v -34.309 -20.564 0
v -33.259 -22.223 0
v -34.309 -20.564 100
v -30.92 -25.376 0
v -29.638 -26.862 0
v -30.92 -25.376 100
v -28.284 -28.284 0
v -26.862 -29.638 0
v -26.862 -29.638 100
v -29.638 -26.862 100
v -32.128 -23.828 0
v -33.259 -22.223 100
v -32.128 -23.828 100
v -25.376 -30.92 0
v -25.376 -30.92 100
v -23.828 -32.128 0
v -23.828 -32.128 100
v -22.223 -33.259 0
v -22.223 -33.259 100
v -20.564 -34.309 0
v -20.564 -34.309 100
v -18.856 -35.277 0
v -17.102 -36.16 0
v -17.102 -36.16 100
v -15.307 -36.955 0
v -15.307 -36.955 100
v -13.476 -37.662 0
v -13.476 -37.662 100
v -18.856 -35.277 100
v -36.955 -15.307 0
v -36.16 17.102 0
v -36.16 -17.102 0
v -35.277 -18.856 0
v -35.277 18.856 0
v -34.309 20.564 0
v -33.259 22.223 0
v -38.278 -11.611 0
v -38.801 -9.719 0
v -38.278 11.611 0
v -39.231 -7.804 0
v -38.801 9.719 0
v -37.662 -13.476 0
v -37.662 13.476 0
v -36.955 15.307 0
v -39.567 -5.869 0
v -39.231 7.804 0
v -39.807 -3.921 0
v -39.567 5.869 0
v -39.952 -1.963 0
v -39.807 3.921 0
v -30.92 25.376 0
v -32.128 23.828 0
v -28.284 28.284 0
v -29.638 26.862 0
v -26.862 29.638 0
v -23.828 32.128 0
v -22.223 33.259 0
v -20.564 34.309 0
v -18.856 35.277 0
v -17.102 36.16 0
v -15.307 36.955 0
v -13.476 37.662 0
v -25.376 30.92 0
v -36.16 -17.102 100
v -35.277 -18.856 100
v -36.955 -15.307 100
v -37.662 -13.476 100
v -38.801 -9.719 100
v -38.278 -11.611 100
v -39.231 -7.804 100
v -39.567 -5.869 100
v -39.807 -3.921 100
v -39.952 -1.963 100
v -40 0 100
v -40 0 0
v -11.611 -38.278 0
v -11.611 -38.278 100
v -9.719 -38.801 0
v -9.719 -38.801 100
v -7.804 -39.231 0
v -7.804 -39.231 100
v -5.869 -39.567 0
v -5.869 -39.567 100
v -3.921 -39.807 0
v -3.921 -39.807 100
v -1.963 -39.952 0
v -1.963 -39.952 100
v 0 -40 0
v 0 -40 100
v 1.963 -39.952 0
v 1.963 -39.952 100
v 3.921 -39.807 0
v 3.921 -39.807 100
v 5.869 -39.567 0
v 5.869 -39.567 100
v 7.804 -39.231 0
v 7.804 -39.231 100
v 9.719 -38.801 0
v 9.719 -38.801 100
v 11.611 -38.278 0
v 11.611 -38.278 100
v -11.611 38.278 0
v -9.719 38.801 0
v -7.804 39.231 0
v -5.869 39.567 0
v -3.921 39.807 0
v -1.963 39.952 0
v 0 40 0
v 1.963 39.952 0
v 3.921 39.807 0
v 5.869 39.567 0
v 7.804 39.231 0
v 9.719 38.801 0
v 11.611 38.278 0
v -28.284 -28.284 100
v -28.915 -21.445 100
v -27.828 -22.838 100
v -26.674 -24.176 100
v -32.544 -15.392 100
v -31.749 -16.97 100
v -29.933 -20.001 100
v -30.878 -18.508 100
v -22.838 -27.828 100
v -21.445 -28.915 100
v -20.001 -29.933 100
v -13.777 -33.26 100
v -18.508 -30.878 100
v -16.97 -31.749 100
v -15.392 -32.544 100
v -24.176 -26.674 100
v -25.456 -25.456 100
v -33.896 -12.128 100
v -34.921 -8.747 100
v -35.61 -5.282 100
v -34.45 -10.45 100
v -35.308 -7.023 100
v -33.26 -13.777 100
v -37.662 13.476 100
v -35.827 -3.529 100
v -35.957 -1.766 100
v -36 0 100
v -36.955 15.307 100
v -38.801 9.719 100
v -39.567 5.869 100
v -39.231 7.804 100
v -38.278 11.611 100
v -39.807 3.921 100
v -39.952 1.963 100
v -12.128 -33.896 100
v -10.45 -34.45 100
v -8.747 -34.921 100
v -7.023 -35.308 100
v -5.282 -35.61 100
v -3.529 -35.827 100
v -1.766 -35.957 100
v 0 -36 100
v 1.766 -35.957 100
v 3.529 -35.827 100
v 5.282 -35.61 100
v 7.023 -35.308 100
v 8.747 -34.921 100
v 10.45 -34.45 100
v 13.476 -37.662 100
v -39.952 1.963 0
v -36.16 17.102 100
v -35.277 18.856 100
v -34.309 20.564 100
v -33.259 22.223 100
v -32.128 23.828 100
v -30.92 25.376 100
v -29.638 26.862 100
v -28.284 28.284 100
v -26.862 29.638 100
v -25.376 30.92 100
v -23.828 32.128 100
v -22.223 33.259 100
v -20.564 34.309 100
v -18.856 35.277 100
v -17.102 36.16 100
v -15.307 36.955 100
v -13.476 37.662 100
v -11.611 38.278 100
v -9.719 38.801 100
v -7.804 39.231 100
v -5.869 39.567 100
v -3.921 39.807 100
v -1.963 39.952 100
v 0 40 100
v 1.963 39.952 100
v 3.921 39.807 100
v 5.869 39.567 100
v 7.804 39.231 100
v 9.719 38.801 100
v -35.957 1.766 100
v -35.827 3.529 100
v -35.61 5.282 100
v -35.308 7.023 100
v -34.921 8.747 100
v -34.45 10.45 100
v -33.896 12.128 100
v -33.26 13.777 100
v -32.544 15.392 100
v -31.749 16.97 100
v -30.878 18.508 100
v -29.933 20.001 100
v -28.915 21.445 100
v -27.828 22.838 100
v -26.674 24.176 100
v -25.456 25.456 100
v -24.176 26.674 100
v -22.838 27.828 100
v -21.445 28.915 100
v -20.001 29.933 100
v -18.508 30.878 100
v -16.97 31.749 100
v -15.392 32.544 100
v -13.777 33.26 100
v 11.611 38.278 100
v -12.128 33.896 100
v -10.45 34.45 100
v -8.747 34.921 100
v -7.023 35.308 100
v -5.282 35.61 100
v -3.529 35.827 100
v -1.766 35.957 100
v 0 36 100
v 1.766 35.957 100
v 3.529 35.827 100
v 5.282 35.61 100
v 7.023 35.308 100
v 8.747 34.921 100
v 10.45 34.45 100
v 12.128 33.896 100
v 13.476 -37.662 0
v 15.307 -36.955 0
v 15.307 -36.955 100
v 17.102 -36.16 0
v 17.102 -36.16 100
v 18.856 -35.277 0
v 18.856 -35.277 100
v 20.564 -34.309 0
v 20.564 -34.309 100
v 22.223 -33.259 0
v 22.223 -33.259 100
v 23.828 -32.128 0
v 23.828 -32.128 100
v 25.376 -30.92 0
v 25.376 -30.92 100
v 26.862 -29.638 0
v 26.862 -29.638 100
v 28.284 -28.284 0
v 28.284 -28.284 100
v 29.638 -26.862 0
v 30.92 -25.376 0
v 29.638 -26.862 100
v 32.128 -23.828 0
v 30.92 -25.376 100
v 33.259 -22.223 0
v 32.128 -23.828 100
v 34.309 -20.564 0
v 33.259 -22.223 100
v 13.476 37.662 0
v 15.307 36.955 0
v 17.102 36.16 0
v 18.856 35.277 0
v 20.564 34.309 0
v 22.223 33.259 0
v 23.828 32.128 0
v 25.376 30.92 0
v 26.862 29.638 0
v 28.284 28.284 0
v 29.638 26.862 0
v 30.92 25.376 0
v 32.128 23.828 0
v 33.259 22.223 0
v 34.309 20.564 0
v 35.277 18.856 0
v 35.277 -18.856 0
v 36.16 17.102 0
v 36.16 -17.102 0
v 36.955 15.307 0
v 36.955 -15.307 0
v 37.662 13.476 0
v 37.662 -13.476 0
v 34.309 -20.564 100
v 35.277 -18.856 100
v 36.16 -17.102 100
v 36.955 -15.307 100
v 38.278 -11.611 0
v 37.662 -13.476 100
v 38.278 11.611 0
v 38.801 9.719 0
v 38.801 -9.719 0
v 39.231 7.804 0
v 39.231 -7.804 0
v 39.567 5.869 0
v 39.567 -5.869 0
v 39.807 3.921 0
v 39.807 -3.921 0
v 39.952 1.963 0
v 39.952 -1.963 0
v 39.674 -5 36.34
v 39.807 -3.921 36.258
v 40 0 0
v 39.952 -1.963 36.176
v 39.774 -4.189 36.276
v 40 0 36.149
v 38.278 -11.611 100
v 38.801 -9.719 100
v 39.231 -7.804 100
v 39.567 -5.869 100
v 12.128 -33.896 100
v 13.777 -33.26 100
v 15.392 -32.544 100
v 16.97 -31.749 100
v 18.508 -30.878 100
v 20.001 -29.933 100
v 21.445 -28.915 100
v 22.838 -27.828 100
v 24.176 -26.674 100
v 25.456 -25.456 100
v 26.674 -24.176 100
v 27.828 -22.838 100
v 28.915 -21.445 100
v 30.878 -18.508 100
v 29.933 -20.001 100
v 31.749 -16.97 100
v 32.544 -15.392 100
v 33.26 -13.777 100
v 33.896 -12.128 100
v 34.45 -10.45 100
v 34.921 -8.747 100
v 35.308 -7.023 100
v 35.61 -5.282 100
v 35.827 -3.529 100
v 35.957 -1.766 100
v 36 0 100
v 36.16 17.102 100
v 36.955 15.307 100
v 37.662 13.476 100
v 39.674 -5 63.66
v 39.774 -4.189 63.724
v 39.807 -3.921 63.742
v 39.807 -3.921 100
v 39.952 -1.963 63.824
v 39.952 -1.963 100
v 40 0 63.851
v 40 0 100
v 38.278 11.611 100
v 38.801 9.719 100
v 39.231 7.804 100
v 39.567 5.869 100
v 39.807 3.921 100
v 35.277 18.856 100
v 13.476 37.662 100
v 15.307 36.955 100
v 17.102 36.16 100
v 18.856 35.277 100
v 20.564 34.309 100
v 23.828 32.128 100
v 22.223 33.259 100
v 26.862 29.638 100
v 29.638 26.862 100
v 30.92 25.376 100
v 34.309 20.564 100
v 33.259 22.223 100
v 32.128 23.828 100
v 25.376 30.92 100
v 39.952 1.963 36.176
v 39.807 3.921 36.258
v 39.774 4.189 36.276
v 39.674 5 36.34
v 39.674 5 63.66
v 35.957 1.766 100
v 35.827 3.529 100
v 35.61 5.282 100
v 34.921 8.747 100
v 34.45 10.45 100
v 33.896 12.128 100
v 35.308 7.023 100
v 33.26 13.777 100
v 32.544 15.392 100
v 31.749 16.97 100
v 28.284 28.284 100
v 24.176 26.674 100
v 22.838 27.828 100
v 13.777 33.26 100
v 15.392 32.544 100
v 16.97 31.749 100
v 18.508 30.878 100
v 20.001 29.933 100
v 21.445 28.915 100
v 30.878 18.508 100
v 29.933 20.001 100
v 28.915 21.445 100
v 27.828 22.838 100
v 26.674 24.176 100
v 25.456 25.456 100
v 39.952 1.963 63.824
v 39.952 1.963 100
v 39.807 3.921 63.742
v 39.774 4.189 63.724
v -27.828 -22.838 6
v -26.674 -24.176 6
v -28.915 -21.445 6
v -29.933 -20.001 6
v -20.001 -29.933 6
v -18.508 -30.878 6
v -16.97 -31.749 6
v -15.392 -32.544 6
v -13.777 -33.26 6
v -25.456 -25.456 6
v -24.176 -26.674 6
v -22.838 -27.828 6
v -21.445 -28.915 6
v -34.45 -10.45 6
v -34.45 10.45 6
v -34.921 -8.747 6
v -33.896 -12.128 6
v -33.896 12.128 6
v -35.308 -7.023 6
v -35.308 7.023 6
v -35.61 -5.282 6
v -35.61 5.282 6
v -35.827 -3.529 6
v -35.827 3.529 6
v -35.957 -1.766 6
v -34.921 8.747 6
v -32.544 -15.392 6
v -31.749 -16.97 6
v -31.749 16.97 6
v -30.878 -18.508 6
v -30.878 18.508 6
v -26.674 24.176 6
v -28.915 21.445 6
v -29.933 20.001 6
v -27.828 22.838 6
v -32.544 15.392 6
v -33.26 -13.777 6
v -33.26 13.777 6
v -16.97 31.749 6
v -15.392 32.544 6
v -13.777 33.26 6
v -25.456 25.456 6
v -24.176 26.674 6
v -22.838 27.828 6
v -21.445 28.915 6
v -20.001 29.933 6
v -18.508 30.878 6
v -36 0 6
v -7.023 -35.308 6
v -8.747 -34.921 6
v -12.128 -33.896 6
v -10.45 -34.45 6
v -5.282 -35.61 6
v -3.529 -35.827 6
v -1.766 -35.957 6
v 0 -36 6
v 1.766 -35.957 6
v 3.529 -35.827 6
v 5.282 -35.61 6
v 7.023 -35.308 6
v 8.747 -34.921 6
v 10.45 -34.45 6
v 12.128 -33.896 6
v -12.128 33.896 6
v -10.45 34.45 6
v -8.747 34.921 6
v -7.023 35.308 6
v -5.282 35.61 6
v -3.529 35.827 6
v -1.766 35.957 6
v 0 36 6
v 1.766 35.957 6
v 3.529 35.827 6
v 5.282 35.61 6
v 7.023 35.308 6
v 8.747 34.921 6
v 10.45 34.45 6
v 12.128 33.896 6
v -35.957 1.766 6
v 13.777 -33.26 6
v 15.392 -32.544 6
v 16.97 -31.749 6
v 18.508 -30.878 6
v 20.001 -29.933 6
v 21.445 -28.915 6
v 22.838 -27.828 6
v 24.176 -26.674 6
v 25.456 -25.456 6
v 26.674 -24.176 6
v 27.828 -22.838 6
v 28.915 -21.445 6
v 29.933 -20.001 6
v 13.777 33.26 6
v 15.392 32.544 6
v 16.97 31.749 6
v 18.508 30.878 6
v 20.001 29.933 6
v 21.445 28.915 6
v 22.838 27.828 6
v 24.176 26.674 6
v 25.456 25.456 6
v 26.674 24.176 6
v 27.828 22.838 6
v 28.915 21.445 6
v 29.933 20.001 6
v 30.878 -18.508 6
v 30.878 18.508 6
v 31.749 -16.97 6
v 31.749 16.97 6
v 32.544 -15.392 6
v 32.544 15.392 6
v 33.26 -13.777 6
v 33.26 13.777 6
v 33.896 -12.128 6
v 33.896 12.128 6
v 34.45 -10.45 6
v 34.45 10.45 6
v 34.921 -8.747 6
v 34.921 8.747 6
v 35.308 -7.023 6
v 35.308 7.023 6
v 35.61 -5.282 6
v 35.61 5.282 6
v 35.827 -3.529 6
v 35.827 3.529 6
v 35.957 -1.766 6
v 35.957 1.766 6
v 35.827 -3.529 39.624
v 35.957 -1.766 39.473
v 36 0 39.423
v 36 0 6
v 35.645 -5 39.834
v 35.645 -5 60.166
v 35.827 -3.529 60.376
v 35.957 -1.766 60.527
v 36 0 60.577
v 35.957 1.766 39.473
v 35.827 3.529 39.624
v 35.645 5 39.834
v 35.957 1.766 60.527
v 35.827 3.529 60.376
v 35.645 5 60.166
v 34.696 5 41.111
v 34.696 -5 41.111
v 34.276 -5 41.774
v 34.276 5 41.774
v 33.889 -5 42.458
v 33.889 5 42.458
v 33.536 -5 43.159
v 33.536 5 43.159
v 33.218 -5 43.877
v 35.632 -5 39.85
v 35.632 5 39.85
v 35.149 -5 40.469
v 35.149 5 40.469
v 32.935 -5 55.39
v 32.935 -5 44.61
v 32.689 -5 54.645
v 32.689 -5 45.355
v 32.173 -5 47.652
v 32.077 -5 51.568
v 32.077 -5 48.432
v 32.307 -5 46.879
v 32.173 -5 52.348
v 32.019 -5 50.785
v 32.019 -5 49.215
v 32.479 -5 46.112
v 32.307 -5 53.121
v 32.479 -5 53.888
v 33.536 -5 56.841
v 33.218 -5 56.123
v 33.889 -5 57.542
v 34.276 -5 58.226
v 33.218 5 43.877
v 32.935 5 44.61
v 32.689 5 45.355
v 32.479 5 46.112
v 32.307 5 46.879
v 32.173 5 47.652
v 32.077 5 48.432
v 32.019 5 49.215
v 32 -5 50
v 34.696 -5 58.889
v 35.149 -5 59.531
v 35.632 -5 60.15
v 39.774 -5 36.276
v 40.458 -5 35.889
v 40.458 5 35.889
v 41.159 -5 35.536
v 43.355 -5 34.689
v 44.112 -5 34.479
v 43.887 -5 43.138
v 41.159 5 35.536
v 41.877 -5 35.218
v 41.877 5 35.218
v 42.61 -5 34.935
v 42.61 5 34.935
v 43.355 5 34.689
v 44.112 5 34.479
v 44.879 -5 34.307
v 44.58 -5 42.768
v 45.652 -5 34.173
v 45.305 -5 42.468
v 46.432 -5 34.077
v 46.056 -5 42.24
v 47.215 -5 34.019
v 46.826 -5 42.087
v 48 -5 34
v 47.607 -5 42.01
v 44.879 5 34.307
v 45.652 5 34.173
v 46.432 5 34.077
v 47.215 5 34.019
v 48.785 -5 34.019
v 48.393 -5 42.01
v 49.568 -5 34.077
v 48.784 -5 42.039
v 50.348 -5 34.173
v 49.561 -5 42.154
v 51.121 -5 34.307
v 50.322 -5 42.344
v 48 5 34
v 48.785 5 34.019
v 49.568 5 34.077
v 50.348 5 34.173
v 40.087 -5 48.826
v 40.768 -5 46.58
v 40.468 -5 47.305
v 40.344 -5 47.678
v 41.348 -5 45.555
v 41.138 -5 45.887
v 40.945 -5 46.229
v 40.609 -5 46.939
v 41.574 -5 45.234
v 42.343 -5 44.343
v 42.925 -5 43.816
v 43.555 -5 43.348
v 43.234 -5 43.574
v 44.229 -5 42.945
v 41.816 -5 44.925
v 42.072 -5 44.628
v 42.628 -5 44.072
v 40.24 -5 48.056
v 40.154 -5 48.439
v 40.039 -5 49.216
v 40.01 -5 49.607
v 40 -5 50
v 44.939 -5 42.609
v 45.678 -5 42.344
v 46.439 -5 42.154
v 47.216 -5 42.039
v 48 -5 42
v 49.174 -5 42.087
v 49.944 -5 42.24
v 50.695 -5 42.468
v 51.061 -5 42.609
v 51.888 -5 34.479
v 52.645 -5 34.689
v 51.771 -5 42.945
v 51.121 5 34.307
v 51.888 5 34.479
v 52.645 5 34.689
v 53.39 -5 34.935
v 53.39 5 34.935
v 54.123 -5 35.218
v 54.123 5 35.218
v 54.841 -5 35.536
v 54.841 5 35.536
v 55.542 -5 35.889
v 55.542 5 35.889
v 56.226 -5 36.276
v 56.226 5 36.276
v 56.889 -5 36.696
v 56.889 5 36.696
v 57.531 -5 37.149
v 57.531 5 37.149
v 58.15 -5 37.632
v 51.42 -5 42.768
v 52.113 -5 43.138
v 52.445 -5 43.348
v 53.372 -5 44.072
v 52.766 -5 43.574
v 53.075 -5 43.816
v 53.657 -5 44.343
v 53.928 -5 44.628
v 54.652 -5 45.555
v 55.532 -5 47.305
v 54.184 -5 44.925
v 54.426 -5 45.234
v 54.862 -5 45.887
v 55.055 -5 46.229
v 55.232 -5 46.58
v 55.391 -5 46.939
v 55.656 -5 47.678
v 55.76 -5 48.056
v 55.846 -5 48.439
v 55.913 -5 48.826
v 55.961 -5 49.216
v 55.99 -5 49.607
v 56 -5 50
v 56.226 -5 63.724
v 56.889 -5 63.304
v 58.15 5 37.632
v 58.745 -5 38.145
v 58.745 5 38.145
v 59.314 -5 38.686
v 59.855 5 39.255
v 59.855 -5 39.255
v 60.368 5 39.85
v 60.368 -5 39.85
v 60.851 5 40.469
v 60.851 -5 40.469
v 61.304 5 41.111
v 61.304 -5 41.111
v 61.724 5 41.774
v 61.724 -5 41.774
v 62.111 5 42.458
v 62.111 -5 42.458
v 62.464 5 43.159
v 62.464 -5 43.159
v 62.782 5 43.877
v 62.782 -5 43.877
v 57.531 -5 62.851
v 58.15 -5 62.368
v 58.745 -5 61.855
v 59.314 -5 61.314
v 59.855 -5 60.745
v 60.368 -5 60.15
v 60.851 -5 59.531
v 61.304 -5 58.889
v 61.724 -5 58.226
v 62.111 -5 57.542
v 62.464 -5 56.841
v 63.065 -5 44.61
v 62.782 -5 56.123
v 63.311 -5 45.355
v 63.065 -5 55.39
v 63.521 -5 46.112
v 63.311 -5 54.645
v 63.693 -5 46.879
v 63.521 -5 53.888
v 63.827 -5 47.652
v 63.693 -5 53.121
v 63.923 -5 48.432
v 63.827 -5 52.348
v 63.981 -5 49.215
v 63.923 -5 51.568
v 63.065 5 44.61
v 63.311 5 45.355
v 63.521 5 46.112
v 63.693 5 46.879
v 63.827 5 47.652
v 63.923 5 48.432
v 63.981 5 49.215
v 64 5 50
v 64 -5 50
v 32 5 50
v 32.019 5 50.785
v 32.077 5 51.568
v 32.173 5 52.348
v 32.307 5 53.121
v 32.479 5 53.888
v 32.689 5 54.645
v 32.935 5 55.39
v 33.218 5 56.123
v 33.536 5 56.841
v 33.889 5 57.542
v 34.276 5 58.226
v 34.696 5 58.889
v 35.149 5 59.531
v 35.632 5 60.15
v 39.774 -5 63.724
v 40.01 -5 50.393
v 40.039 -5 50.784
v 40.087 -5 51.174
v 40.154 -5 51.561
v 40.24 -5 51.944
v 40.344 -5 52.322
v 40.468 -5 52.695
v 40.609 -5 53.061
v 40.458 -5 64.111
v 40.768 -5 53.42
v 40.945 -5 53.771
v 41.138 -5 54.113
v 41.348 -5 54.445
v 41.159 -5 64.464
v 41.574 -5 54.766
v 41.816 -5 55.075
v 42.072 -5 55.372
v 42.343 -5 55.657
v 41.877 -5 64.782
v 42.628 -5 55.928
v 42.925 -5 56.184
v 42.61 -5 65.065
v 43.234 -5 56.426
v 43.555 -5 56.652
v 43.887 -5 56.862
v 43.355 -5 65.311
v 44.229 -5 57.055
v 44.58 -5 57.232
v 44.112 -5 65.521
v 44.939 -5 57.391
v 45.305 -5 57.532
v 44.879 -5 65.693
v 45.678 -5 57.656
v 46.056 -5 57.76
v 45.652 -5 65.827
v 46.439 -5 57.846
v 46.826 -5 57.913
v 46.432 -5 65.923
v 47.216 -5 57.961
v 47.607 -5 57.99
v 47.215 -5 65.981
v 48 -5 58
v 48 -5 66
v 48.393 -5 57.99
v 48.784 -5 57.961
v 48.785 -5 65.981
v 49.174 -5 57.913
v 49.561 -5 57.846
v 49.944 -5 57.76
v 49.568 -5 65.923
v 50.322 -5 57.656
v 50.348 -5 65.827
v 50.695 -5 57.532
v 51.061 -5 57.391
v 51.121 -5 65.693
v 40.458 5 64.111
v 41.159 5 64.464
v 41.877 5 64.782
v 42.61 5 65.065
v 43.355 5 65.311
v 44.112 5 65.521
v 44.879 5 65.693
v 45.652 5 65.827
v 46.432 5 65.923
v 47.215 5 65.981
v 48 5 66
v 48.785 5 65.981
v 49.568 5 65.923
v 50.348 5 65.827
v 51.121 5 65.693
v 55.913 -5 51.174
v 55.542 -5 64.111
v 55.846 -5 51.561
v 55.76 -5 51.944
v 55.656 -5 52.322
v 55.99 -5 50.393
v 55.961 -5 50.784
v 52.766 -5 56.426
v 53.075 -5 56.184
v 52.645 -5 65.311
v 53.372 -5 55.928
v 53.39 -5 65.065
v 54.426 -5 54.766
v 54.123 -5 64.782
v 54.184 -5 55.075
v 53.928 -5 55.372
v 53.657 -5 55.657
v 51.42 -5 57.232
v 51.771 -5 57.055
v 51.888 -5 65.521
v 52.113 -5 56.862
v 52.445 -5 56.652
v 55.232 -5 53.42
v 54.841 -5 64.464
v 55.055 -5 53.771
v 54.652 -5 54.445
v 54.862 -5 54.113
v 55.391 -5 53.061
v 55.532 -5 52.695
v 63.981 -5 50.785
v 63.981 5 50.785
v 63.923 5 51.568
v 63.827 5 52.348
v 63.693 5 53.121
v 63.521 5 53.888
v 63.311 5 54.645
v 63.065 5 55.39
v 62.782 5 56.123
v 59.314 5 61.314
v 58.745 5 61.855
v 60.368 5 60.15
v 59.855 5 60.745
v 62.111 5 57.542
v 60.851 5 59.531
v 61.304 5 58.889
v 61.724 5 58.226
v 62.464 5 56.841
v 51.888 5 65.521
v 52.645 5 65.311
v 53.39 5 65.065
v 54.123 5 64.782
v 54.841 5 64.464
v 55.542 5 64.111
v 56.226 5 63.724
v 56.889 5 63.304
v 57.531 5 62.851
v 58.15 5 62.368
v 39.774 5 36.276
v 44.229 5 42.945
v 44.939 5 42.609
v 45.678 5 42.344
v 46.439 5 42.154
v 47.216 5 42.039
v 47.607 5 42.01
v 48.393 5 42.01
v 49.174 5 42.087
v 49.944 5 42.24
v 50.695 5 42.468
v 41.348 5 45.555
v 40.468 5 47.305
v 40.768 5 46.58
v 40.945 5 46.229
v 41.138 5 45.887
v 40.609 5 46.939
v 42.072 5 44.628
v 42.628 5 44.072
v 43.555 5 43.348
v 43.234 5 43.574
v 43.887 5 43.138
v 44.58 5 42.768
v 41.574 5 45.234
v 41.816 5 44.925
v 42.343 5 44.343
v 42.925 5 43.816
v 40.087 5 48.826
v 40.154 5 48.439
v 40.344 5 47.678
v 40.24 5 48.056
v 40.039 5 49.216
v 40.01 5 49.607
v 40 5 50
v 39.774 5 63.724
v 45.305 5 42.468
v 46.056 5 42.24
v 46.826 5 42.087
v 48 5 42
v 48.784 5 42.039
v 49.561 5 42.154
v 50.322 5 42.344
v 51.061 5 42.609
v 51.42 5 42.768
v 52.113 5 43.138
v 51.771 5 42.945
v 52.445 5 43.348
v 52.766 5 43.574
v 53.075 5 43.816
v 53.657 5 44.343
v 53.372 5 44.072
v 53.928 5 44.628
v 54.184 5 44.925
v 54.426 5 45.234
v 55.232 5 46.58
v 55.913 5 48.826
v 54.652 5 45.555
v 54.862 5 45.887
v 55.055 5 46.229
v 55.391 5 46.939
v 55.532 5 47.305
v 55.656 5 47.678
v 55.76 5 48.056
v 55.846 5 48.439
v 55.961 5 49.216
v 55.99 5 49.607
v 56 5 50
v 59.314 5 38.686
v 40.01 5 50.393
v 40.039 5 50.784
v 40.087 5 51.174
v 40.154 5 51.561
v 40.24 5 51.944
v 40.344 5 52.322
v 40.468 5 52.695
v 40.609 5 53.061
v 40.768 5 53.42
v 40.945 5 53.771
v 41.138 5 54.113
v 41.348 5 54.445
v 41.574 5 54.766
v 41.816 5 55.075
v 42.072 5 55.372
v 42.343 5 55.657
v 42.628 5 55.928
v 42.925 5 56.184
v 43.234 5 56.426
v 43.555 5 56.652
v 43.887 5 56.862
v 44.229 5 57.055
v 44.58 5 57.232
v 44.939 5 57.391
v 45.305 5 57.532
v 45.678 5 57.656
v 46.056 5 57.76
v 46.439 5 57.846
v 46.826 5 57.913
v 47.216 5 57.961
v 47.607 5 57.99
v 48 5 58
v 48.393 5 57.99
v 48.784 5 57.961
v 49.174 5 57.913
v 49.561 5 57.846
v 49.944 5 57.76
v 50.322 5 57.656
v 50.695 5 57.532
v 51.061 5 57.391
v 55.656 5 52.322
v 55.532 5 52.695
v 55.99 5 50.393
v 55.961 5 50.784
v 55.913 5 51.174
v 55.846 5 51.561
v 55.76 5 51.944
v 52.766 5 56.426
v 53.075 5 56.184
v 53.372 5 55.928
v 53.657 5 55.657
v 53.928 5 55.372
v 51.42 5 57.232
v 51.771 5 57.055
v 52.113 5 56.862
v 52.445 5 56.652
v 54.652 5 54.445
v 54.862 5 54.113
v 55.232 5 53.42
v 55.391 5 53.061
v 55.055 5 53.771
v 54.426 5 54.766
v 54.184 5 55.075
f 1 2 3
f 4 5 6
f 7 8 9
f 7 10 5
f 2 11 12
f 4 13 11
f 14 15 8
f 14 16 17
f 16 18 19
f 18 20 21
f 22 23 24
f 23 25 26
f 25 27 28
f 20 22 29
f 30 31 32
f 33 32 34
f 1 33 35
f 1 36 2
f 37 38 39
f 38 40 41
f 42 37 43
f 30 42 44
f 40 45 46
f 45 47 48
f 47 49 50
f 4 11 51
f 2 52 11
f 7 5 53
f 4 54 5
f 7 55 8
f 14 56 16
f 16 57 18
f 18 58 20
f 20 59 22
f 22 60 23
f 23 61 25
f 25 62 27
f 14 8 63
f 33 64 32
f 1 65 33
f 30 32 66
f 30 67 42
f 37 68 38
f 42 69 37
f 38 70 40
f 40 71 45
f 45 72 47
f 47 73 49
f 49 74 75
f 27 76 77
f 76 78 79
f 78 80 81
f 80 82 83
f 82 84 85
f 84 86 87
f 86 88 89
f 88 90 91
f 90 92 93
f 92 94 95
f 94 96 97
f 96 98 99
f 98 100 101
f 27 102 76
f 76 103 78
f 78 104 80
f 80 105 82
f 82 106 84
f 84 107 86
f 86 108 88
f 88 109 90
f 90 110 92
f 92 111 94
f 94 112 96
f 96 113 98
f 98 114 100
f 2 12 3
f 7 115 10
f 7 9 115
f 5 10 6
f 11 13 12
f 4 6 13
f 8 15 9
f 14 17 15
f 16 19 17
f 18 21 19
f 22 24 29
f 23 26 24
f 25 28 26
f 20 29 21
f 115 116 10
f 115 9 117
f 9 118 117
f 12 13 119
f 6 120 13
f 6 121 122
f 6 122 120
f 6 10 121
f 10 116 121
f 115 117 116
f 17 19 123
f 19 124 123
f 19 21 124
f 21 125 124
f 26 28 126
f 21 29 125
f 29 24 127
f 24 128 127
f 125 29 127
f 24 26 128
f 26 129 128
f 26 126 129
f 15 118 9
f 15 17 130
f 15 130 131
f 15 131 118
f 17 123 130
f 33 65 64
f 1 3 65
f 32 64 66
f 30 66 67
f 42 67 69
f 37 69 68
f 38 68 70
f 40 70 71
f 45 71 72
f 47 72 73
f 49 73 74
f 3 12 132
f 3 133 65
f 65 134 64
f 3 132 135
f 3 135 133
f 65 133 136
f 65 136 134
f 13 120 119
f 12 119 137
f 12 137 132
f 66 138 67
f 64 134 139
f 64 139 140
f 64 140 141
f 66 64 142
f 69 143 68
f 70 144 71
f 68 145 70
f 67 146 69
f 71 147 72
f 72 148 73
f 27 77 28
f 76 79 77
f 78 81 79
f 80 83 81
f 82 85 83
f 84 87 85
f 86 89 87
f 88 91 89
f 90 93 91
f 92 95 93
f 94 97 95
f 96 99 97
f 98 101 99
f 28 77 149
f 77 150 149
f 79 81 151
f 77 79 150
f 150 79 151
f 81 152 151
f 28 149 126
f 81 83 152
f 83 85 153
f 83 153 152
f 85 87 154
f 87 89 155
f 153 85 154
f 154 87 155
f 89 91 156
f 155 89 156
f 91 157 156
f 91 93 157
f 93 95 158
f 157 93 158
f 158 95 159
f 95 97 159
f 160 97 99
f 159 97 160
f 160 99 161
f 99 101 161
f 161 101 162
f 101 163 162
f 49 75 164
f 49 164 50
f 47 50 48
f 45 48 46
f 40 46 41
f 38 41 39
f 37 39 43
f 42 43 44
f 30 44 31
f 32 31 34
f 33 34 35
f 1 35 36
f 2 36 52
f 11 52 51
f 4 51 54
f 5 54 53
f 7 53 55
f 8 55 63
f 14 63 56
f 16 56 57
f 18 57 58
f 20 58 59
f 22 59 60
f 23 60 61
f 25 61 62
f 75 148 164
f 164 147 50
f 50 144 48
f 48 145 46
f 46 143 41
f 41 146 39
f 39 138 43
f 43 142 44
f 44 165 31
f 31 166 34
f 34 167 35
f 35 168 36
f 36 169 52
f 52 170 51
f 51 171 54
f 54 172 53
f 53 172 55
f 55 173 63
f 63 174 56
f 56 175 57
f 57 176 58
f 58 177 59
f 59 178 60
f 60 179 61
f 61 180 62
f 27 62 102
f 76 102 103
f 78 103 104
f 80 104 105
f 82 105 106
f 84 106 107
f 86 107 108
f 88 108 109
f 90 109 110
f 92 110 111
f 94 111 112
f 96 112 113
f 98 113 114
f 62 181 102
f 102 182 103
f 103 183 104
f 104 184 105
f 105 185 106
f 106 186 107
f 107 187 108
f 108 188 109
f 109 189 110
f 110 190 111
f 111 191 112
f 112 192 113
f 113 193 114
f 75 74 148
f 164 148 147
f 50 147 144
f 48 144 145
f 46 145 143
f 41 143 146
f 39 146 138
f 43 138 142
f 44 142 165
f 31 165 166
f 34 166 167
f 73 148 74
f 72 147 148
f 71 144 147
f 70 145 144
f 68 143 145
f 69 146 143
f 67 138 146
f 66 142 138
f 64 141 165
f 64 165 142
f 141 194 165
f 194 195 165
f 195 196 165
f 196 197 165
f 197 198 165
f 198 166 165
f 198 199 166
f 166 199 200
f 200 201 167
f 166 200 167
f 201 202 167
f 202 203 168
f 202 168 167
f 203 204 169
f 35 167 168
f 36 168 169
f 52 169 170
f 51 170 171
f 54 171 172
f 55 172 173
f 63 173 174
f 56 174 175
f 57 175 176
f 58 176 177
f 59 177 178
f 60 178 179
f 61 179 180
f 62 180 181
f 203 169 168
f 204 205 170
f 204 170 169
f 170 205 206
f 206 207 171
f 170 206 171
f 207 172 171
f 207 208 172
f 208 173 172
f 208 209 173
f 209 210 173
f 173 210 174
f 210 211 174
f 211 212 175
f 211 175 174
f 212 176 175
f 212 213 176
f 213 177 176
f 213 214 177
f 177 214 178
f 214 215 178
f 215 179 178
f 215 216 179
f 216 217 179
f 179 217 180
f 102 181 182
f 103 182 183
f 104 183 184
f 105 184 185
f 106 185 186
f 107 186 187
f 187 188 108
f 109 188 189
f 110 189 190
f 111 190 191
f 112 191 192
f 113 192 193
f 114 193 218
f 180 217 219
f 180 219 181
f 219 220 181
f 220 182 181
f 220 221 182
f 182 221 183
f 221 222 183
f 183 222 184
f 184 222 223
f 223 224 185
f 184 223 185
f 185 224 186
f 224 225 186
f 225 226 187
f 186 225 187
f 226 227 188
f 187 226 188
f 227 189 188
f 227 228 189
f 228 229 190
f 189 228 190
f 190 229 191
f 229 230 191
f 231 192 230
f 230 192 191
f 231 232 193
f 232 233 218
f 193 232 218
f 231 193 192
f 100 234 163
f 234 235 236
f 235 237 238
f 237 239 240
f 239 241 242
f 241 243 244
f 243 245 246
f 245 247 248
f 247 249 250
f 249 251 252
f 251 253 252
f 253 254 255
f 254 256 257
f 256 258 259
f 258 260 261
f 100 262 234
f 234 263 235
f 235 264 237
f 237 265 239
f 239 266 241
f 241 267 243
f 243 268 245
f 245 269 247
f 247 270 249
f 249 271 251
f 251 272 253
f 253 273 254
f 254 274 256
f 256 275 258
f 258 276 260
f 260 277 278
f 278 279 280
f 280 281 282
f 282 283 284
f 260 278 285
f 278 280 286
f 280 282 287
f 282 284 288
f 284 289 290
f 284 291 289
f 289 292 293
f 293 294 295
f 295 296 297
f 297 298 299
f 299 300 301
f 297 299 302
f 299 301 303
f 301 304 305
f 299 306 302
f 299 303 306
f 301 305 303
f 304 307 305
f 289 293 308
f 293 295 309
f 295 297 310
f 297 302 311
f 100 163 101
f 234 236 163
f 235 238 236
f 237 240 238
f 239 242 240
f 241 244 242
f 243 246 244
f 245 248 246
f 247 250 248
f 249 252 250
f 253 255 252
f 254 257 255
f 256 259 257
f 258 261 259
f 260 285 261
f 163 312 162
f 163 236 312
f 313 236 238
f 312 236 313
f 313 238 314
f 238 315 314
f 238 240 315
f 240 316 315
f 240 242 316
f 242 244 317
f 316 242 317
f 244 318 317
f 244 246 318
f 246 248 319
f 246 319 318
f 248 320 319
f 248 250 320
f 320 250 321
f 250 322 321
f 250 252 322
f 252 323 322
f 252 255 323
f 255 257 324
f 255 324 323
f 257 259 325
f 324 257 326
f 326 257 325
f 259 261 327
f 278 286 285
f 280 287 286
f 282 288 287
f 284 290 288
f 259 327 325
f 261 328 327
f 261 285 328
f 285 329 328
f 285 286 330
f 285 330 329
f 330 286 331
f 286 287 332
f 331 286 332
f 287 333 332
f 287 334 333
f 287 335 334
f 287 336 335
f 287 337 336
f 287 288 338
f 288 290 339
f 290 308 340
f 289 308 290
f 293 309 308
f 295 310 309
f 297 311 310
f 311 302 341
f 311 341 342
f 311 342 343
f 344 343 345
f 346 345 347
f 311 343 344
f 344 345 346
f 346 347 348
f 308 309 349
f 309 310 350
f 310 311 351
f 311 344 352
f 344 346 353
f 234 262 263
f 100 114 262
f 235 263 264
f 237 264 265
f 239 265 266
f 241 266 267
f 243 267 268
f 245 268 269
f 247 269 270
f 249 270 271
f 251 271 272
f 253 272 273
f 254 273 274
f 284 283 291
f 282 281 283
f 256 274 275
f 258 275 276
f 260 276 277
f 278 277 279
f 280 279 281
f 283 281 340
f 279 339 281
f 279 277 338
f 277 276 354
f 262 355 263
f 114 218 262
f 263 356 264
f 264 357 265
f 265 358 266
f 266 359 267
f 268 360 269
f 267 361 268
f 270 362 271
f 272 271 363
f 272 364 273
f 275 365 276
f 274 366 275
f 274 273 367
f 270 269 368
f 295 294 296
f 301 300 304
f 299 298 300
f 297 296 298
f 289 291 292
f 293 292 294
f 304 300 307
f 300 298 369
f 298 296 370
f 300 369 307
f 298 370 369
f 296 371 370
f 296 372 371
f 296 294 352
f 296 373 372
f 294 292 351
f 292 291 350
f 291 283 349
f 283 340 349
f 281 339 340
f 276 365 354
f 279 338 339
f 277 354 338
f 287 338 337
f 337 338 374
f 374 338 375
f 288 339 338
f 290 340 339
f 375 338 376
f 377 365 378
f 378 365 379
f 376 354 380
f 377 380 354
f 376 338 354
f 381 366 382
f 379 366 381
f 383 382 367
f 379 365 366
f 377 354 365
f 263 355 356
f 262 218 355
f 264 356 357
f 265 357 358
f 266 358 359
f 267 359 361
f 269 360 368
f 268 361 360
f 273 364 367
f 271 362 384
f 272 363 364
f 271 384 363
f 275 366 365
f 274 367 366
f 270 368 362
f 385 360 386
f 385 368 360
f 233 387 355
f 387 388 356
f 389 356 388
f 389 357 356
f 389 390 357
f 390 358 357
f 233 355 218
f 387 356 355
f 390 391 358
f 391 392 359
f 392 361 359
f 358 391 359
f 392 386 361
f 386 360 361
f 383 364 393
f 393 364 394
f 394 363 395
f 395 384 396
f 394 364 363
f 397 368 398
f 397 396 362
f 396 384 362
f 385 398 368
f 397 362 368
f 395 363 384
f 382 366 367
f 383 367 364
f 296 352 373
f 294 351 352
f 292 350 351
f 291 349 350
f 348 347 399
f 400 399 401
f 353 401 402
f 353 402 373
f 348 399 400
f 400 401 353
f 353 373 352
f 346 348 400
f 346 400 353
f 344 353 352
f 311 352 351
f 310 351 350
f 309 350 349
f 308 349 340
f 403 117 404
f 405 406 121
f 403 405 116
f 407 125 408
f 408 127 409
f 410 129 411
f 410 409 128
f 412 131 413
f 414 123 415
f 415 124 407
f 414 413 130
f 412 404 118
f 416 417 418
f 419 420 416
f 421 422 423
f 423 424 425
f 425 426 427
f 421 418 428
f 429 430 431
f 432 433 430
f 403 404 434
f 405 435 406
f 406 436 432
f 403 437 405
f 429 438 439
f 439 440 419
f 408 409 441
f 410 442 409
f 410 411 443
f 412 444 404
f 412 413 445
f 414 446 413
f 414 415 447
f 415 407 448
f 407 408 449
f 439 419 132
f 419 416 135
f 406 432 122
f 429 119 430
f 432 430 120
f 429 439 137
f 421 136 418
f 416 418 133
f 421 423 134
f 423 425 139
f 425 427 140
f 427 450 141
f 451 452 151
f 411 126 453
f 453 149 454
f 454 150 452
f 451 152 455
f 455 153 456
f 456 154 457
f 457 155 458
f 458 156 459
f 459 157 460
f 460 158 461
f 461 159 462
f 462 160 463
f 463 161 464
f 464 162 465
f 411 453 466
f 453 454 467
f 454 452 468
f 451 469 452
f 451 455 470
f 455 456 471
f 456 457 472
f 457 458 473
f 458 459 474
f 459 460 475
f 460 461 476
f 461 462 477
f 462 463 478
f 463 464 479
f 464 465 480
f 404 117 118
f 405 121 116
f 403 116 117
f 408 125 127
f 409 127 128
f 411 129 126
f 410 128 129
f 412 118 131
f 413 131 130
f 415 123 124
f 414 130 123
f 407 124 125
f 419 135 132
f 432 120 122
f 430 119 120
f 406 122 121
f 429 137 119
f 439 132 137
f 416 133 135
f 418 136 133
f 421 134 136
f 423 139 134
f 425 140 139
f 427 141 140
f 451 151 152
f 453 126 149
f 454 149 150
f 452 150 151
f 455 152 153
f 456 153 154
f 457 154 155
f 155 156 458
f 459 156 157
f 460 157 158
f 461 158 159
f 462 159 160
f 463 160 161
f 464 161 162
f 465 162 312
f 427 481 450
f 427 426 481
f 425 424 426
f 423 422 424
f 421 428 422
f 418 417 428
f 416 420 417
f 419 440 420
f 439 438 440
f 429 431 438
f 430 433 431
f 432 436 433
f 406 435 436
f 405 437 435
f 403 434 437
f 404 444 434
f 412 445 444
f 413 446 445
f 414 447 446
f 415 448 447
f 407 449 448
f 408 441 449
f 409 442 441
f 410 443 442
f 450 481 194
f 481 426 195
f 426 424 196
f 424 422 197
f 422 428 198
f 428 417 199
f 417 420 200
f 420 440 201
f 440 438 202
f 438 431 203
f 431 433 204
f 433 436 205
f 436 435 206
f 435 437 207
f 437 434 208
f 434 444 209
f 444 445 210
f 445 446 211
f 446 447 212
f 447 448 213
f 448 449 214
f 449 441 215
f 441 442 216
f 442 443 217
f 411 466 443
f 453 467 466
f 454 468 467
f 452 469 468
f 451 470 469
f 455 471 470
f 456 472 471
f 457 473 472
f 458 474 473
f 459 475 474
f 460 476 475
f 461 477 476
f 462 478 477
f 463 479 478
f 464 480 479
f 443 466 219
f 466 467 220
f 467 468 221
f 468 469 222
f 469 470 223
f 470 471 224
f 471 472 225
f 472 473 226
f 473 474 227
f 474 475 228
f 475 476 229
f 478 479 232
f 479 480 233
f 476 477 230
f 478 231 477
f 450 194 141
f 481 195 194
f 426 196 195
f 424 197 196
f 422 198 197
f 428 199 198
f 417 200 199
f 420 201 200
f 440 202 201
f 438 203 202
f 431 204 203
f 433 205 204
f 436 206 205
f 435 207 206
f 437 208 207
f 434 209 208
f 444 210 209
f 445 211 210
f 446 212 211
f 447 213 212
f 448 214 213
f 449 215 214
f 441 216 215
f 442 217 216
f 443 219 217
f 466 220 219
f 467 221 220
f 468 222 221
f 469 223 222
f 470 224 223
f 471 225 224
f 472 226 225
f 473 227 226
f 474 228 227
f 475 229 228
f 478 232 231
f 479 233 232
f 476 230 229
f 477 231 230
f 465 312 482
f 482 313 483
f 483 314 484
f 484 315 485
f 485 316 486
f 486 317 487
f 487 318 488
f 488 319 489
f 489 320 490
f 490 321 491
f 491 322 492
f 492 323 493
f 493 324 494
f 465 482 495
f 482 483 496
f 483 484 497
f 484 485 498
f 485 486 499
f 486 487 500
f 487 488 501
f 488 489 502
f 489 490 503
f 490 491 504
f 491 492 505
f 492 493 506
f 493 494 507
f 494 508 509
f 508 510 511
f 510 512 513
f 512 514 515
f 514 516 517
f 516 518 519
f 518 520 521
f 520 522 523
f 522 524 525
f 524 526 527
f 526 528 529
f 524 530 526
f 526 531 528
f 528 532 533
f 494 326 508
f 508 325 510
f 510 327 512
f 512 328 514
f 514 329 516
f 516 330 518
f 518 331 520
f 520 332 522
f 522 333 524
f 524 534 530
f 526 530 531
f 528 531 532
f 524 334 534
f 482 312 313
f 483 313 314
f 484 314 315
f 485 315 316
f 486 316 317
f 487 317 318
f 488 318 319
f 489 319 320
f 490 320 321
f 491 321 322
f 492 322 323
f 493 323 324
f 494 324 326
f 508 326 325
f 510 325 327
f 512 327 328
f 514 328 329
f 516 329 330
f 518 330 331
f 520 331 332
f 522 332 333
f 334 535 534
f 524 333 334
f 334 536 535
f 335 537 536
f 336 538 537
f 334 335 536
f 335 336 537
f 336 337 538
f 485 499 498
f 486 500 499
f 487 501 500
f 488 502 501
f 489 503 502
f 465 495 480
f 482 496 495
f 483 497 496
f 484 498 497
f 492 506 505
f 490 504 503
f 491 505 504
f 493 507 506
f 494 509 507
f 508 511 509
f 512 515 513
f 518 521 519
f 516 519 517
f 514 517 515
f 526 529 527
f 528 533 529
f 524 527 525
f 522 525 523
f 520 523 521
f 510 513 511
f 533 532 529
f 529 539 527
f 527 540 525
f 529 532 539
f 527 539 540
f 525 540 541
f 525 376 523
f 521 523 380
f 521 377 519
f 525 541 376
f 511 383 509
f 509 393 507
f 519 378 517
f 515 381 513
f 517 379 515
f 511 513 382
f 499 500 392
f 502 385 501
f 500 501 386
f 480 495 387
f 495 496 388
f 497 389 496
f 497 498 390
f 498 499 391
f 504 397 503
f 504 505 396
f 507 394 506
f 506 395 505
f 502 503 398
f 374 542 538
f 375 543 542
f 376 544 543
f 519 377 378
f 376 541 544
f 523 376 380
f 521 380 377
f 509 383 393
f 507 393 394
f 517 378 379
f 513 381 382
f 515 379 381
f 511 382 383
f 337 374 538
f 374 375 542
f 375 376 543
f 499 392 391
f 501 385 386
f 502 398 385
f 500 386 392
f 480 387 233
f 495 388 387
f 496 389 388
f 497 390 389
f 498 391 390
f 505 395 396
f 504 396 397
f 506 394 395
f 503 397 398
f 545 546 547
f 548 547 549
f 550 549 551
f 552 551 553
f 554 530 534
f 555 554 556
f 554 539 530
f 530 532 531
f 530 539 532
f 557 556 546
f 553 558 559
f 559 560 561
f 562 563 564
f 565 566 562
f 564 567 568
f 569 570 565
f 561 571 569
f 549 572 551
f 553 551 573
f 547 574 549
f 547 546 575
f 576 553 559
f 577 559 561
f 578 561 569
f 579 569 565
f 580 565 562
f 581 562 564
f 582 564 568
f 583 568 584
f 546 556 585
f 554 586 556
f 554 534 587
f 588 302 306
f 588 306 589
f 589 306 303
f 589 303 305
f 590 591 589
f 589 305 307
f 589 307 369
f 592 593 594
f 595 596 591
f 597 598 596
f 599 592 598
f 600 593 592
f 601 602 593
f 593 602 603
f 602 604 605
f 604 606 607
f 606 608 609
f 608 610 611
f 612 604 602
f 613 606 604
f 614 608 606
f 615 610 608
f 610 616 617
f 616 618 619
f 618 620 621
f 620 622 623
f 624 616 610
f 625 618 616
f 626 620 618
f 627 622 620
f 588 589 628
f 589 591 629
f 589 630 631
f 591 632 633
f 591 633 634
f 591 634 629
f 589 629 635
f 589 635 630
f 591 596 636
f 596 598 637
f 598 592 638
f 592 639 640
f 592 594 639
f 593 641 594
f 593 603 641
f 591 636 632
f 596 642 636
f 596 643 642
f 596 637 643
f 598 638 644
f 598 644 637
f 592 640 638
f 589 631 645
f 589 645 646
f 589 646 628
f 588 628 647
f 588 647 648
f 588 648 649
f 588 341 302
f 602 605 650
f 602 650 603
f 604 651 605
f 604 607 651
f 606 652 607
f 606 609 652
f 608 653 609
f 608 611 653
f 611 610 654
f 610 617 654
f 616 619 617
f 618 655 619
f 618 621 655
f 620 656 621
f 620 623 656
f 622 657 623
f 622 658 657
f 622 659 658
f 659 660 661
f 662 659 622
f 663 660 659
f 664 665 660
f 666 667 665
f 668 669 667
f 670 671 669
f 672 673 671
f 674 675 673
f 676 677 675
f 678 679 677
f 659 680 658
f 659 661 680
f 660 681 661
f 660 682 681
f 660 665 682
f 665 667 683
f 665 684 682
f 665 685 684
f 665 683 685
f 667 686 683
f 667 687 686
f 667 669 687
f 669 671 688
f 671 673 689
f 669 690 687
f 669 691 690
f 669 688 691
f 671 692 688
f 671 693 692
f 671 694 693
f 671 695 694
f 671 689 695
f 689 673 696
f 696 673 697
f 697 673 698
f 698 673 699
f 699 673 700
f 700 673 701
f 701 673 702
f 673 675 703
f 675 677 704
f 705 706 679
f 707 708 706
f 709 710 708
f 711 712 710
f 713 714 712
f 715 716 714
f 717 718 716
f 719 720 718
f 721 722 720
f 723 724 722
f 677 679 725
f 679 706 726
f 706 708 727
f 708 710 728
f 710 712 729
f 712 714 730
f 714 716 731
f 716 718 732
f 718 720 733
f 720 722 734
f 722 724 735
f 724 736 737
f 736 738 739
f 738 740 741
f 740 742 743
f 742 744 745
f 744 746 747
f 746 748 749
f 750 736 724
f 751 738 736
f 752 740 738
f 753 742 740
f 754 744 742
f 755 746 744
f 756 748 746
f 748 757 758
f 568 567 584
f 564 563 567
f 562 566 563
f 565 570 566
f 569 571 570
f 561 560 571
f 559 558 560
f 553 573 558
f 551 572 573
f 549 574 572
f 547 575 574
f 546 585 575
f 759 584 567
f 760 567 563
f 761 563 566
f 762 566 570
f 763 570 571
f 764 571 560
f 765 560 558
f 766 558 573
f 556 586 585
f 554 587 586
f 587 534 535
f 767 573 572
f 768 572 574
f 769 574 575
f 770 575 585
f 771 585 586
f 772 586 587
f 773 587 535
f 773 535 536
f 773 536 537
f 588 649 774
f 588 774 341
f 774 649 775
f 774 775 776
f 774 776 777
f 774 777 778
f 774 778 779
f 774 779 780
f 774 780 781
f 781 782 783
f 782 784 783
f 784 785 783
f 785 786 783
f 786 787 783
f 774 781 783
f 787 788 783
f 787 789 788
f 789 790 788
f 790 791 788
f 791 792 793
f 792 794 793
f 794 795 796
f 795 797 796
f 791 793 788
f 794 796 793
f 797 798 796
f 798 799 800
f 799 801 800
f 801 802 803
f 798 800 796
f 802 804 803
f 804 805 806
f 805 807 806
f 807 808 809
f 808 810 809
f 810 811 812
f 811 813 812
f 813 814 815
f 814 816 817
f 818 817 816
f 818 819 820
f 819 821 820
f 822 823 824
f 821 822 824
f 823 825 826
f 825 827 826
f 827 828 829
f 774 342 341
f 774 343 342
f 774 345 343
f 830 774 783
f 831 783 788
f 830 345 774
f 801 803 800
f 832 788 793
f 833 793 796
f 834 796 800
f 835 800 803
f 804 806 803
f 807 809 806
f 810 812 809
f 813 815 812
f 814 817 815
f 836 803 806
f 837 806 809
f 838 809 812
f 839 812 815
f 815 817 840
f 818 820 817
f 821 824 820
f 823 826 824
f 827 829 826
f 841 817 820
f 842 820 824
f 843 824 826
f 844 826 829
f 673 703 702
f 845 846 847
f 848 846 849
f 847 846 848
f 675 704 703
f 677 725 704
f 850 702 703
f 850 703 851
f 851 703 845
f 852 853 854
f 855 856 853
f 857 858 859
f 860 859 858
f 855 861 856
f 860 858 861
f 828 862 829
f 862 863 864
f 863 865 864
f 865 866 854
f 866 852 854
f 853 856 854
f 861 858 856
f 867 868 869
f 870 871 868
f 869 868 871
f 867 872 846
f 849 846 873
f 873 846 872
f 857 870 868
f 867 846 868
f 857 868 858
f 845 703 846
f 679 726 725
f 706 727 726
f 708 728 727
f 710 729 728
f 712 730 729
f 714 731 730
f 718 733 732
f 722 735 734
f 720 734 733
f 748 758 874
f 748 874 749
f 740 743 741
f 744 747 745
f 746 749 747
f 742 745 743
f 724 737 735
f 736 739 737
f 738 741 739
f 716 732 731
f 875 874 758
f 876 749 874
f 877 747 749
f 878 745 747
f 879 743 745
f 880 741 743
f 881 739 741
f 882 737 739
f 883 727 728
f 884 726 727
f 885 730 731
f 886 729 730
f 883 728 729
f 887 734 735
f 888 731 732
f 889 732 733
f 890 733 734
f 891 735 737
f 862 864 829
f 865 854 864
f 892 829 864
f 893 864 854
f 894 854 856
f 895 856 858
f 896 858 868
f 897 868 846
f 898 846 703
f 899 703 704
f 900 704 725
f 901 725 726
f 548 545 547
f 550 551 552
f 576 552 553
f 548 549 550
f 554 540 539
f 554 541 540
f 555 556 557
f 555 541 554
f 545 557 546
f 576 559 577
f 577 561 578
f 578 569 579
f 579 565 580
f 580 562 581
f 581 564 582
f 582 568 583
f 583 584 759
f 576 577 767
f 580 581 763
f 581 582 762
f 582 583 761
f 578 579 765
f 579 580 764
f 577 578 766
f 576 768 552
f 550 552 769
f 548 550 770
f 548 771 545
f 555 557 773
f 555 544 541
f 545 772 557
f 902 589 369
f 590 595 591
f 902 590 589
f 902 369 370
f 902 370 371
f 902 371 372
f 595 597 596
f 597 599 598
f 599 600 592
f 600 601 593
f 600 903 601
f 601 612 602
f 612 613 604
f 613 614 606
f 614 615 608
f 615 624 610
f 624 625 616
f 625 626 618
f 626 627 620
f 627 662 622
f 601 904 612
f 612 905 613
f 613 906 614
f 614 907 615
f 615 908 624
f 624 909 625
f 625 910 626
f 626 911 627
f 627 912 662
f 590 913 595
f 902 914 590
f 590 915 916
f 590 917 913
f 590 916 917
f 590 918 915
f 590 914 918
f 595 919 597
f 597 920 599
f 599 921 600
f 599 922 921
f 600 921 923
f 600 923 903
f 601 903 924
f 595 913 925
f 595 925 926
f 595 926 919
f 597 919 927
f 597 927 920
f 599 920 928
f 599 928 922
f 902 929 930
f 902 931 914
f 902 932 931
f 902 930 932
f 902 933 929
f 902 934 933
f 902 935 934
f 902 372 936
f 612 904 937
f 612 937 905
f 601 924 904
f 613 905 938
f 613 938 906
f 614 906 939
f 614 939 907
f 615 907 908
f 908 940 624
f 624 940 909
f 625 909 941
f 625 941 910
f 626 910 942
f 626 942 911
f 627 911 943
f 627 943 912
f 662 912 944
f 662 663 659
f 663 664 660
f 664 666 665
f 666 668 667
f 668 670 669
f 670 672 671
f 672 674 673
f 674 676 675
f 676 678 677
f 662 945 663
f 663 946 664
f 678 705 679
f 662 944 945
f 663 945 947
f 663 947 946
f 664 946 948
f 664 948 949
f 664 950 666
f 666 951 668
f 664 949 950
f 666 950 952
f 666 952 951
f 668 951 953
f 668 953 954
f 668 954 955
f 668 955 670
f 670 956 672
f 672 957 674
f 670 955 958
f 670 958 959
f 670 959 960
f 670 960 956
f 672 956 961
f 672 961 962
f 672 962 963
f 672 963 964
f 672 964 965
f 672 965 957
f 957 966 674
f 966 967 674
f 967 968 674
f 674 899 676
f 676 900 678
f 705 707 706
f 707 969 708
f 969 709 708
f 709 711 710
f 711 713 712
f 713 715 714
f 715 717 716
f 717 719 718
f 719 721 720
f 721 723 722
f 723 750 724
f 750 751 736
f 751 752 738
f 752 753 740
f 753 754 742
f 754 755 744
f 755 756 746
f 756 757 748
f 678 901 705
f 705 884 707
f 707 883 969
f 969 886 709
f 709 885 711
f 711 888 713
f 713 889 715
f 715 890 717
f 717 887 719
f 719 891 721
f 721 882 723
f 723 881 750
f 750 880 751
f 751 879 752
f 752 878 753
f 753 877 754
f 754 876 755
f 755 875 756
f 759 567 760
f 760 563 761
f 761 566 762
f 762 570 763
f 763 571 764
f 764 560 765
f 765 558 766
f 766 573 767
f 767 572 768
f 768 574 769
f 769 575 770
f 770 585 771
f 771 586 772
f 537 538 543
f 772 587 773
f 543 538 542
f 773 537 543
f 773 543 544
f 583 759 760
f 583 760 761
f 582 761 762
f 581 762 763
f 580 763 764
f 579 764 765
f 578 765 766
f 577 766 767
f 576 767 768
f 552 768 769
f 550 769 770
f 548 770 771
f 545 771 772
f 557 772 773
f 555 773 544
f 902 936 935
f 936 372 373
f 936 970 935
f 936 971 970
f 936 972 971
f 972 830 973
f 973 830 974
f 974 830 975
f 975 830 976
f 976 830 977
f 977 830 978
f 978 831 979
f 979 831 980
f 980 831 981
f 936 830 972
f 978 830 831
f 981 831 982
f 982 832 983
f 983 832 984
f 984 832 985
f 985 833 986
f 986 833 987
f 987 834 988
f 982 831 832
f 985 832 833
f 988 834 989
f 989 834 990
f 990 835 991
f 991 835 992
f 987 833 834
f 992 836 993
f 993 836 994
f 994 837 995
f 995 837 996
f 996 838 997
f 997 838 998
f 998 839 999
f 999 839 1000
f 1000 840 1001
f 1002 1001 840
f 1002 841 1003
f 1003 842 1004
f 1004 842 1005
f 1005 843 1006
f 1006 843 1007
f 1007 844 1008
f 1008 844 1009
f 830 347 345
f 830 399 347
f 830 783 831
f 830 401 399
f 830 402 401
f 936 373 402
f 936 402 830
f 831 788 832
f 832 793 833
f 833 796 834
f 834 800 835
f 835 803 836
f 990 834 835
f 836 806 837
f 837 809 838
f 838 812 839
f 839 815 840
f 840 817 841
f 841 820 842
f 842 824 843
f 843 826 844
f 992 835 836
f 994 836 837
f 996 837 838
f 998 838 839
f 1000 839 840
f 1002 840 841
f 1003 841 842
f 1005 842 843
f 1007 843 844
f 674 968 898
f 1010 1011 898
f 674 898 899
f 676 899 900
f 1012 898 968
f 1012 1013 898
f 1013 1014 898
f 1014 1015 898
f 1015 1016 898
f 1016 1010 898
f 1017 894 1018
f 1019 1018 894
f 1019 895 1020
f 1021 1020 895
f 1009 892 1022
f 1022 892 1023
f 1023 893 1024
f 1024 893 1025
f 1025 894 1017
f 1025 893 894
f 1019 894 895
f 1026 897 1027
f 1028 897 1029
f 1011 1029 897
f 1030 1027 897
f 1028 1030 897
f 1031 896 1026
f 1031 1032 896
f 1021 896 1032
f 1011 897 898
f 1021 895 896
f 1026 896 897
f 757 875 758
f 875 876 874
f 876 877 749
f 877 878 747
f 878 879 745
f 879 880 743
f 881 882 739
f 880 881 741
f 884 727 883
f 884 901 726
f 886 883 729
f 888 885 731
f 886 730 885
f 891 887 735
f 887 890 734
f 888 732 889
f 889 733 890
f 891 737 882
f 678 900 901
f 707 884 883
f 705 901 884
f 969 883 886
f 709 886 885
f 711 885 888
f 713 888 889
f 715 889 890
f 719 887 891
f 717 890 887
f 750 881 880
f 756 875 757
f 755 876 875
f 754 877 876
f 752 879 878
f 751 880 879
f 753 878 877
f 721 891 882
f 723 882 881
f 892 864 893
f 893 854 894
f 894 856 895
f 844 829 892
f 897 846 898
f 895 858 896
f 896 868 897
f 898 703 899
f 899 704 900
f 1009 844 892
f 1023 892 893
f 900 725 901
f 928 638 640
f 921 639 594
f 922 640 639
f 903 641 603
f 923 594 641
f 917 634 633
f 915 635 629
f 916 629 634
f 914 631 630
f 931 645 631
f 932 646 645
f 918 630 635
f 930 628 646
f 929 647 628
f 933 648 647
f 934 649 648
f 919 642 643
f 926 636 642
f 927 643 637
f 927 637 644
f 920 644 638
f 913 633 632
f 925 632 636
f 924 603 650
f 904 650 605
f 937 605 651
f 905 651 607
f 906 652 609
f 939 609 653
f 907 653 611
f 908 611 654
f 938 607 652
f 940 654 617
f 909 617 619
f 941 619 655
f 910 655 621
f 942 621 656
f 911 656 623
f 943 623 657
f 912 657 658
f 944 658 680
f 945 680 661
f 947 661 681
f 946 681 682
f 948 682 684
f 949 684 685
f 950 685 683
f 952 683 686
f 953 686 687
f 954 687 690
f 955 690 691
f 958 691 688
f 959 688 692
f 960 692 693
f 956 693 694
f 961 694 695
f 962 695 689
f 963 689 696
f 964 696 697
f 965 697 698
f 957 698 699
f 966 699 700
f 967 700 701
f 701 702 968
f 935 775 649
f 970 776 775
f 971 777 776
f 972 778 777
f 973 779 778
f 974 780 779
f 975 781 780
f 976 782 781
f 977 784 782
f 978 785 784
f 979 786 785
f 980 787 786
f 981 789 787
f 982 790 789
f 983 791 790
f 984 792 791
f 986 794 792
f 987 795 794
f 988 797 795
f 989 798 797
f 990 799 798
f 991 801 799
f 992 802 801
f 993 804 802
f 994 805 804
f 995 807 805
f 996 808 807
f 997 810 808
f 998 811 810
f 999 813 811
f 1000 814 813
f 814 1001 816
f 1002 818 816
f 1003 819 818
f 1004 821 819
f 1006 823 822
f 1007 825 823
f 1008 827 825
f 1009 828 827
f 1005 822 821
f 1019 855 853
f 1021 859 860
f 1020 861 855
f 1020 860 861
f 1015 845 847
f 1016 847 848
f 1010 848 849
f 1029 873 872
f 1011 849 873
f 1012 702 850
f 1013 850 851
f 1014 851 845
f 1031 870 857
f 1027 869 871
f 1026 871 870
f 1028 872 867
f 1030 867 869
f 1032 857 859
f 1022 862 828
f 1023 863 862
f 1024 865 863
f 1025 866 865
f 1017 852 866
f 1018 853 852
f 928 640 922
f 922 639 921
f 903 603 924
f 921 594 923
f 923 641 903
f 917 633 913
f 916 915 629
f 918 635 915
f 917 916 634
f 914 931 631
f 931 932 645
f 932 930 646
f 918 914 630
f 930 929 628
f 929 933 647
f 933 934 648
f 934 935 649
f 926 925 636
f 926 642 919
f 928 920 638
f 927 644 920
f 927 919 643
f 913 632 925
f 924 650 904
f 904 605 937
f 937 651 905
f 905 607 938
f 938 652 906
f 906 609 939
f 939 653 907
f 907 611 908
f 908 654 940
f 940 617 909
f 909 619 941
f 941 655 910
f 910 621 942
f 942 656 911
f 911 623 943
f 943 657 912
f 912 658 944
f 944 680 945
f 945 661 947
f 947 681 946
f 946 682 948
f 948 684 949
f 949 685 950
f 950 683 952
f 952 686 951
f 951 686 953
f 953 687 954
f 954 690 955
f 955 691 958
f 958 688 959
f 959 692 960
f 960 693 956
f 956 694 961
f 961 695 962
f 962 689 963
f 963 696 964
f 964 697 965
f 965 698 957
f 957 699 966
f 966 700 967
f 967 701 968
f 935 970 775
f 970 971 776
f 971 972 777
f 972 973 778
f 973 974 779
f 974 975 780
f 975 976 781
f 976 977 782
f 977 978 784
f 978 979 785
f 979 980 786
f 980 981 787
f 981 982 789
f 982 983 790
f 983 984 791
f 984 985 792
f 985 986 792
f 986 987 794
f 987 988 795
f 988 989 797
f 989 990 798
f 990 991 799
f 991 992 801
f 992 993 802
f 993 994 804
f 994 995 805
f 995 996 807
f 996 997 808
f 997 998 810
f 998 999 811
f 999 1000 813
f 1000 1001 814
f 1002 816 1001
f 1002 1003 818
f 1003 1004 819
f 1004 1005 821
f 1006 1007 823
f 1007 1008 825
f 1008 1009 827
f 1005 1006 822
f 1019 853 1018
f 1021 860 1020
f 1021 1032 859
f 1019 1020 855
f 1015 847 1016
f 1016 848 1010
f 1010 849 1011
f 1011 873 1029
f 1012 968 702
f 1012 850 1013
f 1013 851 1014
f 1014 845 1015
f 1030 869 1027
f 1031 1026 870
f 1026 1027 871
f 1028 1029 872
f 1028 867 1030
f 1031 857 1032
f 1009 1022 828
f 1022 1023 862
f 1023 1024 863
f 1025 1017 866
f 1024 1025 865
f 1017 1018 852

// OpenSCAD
$fn = 128;

outer_d = 80;
H = 100;
wall = 4;
bottom_t = 6;
inner_d = outer_d - 2 * wall;

handle_r = 12;
handle_width = 8;
handle_depth = 10;
handle_cx = 48;

module cup() {
    difference() {
        cylinder(d = outer_d, h = H);
        translate([0, 0, bottom_t]) {
            cylinder(d = inner_d, h = H);
        }
    }
}

module handle() {
    translate([handle_cx, 0, H / 2]) {
        rotate([90, 0, 0]) {
            translate([0, 0, -handle_depth / 2]) {
                difference() {
                    cylinder(d = 2 * (handle_r + handle_width / 2), h = handle_depth);
                    cylinder(d = 2 * (handle_r - handle_width / 2), h = handle_depth);
                }
            }
        }
    }
}

union() {
    cup();
    handle();
}
